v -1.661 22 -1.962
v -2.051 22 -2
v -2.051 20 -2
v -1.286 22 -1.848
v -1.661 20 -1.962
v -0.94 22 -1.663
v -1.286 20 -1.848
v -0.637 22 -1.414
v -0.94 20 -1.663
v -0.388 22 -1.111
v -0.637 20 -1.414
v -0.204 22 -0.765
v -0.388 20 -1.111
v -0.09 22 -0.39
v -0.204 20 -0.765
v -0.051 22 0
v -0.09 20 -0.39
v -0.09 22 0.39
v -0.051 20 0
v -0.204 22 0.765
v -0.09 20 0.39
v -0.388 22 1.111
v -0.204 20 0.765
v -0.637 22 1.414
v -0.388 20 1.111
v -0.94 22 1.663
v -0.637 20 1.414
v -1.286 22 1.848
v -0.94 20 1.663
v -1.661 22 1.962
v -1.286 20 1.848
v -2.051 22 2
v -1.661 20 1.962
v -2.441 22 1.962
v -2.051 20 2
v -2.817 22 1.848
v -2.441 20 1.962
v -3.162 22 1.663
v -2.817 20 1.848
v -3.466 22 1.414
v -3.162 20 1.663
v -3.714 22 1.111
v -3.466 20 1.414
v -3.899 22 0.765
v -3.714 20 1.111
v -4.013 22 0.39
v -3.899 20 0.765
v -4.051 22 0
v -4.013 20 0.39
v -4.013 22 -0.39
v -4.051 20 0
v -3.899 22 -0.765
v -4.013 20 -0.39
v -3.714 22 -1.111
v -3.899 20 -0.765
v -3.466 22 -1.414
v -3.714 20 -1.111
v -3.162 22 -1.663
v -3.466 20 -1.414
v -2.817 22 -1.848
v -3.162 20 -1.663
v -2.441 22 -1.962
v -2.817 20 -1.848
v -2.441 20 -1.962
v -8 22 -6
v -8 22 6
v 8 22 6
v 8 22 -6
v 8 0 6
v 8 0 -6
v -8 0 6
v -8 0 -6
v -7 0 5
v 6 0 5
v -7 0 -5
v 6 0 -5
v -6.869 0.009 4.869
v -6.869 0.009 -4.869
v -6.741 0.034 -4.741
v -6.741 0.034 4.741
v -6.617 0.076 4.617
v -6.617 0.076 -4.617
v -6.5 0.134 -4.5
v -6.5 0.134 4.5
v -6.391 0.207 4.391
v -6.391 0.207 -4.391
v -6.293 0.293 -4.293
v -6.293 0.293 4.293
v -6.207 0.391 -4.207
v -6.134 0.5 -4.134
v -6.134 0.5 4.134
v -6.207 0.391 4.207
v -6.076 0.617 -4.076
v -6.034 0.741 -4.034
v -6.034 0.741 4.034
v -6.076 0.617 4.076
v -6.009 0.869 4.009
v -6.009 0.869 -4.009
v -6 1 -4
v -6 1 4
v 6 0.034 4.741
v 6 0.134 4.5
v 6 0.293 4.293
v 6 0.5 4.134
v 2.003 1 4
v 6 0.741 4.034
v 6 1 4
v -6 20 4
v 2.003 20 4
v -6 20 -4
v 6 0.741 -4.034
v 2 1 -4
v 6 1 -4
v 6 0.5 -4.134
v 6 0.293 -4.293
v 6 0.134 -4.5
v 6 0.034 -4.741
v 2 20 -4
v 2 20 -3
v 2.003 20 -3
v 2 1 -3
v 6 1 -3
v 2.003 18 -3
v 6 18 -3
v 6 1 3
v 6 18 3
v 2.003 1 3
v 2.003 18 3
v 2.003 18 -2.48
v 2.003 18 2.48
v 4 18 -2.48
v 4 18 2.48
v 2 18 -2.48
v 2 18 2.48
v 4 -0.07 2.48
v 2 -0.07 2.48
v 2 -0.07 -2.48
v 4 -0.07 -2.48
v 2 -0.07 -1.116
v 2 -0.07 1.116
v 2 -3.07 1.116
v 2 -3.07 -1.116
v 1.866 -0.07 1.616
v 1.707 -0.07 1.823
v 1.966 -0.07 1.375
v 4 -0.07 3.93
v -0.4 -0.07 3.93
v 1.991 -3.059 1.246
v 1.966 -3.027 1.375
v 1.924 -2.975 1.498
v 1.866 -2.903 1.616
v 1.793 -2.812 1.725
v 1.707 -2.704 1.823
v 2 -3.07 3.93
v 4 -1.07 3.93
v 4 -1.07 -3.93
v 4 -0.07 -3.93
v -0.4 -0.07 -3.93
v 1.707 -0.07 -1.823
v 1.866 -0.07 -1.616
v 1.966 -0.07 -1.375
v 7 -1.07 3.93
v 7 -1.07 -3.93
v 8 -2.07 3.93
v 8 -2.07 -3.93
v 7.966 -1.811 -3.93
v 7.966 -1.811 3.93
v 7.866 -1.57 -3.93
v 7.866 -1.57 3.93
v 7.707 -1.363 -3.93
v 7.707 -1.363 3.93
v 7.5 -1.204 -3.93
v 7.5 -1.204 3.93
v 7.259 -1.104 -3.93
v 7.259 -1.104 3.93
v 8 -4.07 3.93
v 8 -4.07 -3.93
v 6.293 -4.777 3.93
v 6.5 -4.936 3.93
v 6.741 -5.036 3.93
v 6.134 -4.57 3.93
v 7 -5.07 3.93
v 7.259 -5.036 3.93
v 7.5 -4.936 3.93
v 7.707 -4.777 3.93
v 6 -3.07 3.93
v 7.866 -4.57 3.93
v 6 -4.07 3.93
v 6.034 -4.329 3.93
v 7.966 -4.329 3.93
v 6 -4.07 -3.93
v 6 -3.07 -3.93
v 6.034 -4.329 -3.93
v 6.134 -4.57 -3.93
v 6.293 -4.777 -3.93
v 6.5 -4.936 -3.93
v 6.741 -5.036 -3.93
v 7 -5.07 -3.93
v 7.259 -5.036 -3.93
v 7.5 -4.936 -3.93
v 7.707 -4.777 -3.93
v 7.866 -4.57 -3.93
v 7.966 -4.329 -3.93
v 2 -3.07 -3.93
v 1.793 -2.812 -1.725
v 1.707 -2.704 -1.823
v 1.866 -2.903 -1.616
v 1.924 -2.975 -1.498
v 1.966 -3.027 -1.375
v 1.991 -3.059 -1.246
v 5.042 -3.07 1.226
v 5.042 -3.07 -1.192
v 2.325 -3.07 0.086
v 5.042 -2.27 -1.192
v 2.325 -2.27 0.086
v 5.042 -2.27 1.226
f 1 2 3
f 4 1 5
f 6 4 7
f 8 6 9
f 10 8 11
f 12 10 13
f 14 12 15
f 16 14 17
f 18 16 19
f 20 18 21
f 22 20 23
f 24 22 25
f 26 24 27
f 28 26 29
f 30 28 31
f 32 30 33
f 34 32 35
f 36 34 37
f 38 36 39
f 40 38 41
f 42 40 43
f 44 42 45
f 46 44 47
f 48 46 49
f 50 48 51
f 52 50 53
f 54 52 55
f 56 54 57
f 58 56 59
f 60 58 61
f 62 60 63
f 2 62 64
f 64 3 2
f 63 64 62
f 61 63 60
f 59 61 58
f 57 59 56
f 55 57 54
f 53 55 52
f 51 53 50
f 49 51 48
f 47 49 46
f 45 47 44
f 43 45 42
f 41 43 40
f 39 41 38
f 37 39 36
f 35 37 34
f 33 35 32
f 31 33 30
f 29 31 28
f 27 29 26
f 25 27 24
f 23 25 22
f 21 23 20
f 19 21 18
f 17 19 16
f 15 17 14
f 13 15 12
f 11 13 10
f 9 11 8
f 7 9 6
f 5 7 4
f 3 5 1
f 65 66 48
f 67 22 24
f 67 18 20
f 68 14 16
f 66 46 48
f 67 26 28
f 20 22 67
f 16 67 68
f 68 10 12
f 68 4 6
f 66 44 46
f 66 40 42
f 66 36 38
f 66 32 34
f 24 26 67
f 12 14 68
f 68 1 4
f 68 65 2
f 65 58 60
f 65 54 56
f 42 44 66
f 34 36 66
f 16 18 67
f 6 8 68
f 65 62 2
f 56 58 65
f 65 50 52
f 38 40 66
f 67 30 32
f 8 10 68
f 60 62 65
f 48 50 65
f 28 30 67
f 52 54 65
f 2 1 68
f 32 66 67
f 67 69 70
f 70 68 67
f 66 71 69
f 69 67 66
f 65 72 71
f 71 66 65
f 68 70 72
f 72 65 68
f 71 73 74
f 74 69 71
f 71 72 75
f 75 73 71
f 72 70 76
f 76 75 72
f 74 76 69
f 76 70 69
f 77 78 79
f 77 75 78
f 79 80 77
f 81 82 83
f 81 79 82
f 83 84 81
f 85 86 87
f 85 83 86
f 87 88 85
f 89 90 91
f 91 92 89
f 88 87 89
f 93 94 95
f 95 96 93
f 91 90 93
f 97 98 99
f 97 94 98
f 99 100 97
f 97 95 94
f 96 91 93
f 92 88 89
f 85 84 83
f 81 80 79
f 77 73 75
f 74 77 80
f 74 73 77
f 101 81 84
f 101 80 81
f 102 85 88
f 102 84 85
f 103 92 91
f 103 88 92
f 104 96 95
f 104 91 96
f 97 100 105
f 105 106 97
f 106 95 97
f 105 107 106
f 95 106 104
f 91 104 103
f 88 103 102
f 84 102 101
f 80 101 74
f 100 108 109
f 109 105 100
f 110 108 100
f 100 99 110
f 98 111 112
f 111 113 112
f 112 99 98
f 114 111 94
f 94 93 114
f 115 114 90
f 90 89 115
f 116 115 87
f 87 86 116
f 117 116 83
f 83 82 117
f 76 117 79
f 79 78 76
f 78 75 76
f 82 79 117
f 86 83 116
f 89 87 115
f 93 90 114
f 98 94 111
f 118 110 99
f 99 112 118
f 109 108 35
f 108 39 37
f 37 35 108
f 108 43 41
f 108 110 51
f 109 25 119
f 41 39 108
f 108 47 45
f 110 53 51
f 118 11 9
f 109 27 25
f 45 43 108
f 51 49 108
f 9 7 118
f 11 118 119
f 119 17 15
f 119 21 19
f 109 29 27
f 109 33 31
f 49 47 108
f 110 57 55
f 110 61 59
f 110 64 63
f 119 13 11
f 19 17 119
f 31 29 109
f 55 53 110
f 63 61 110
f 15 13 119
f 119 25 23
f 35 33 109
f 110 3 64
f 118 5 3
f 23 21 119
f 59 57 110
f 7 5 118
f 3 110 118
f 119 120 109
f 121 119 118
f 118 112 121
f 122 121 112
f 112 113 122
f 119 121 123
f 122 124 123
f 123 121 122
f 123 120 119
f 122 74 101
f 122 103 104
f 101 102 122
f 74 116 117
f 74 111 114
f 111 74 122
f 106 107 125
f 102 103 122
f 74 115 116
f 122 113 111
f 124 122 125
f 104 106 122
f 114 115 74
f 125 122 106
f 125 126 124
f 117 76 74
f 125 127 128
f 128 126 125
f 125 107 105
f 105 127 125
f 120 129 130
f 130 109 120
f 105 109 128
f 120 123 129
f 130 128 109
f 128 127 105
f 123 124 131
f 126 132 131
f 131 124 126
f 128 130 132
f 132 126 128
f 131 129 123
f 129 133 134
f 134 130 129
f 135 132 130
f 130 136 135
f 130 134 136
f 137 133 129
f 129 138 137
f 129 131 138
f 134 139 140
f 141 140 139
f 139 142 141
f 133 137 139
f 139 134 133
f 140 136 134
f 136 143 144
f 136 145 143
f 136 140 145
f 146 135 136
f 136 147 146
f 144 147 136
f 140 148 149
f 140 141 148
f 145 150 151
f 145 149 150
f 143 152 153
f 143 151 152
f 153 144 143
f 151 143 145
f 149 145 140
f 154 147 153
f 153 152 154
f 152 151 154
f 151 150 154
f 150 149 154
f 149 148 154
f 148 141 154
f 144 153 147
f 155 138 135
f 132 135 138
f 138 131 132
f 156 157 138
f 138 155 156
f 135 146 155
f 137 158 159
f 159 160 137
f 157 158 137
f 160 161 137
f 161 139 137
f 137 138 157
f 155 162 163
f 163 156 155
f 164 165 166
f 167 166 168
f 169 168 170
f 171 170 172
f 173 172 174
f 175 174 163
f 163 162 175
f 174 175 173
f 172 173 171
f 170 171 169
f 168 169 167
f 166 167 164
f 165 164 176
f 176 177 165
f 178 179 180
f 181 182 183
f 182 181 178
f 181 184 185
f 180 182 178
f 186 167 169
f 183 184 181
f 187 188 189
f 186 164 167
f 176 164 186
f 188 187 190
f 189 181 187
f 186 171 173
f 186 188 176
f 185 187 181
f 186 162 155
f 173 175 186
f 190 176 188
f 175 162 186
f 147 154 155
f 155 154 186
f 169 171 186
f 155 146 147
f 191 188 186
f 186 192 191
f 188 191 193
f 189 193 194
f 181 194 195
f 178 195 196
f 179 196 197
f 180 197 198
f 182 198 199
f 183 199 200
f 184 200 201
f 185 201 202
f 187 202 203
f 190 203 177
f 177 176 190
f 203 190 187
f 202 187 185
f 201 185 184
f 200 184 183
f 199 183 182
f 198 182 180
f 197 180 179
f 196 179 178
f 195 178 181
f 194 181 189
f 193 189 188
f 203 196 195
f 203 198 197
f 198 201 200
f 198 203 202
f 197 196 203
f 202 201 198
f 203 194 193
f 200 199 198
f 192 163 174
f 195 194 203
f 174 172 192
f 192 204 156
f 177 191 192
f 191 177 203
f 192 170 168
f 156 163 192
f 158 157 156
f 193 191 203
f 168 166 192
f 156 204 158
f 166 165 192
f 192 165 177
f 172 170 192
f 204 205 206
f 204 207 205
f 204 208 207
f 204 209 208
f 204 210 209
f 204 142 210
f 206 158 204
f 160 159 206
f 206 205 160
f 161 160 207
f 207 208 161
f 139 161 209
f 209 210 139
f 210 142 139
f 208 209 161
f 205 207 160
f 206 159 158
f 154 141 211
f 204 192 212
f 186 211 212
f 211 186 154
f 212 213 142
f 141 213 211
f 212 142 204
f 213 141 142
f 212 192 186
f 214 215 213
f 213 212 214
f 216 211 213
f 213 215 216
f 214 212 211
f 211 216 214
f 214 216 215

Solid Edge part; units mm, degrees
sketch "Sketch1" plane through (0, 0, 0) normal (0, -1, 0) x (1, 0, 0)
  line L0 (8, 6) -> (-8, 6)
  line L1 (-8, 6) -> (-8, -6)
  line L2 (-8, -6) -> (8, -6)
  line L3 (8, -6) -> (8, 6)
extrude "Protrusion1" add sketch "Sketch1" against normal blind 22
sketch "Sketch2" plane through (0, 0, 0) normal (0, -1, 0) x (1, 0, 0)
  line L0 (6, 4) -> (-6, 4)
  line L1 (-6, 4) -> (-6, -4)
  line L2 (-6, -4) -> (6, -4)
  line L3 (6, -4) -> (6, 4)
extrude "Cutout1" cut sketch "Sketch2" against normal blind 20
sketch "Sketch3" plane through (0, 20, 0) normal (0, -1, 0) x (1, 0, 0)
  line L0 (6, -3) -> (2, -3)
  line L1 (2, -3) -> (2, -4)
  line L2 (2, -4) -> (6, -4)
  line L3 (6, -4) -> (6, -3)
  line L4 (6, 3) -> (2.0028, 3)
  line L5 (2.0028, 3) -> (2.0028, 4)
  line L6 (2.0028, 4) -> (6, 4)
  line L7 (6, 4) -> (6, 3)
extrude "LockSideProtrusion" add sketch "Sketch3" along normal blind 19
sketch "Sketch4" plane through (0, 20, 0) normal (0, -1, 0) x (1, 0, 0)
  line L0 (6, 3) -> (6, -3)
  line L1 (6, -3) -> (2.0028, -3)
  line L2 (2.0028, -3) -> (2.0028, 3)
  line L3 (2.0028, 3) -> (6, 3)
extrude "LockBaseProtrusion" add sketch "Sketch4" along normal blind 2
sketch "Sketch5" plane through (4.0014, 18, 0) normal (0, -1, 0) x (1, 0, 0)
  line L0 (-0.0014, 2.48) -> (-0.0014, -2.48)
  line L1 (-0.0014, -2.48) -> (-2.0014, -2.48)
  line L2 (-2.0014, -2.48) -> (-2.0014, 2.48)
  line L3 (-2.0014, 2.48) -> (-0.0014, 2.48)
extrude "LockProtrusion" add sketch "Sketch5" along normal blind 18.07
sketch "Sketch6" plane through (3, -0.07, 0) normal (0, -1, 0) x (1, 0, 0)
  line L0 (-1, -3.93) -> (-1, 3.93)
  line L1 (-1, 3.93) -> (1, 3.93)
  line L2 (1, 3.93) -> (1, -3.93)
  line L3 (1, -3.93) -> (-1, -3.93)
extrude "LockHeadMainProtrusion" add sketch "Sketch6" along normal blind 3
sketch "Sketch7" plane through (3, -0.07, 0) normal (0, -1, 0) x (1, 0, 0)
  line L0 (-3.4, 3.93) -> (-1, 1.53)
  line L1 (-1, 1.53) -> (-1, 3.93)
  line L2 (-1, 3.93) -> (-3.4, 3.93)
  line L3 (-3.4, -3.93) -> (-1, -1.53)
  line L4 (-1, -1.53) -> (-1, -3.93)
  line L5 (-1, -3.93) -> (-3.4, -3.93)
  dimension "D1" = 0.07
  dimension "D2" = 7.86
  dimension "D3" = 0.07
extrude "LockHeadTriangleProtrusion" add sketch "Sketch7" along normal blind 3
sketch "Sketch8" plane through (1.8, -1.57, -3.93) normal (0, 0, -1) x (1, 0, 0)
  line L0 (-2.2, 1.5) -> (0.2, 1.5)
  line L1 (0.2, 1.5) -> (-2.2, -1.5)
  line L2 (-2.2, -1.5) -> (-2.2, 1.5)
extrude "LockHeadTriangleCut" cut sketch "Sketch8" against normal blind 8.6519
sketch "Sketch9" plane through (4, 7.465, 0) normal (1, 0, 0) x (0, 0, 1)
  line L0 (-3.93, 10.535) -> (3.93, 10.535)
  line L1 (3.93, 10.535) -> (3.93, 8.535)
  line L2 (3.93, 8.535) -> (-3.93, 8.535)
  line L3 (-3.93, 8.535) -> (-3.93, 10.535)
extrude "FlapBaseProtrusion" add sketch "Sketch9" along normal blind 4
sketch "Sketch10" plane through (5, -3.07, 0) normal (0, -1, 0) x (1, 0, 0)
  line L0 (3, 3.93) -> (1, 3.93)
  line L1 (1, 3.93) -> (1, -3.93)
  line L2 (1, -3.93) -> (3, -3.93)
  line L3 (3, -3.93) -> (3, 3.93)
extrude "FlapHandleProtrusion" add sketch "Sketch10" along normal blind 2
fillet "SlotInnerRound" radius 1 3 edges at (0, 0, 4) (-6, 0, 0) (0, 0, -4)
fillet "FlapRound" radius 1 3 edges at (6, -5.07, 0) (8, -5.07, 0) (8, -1.07, 0)
sketch "Sketch11" plane through (4, -3.07, 0) normal (0, -1, 0) x (1, 0, 0)
  line L0 (-1.6753, 0.0864) -> (1.042, 1.2263)
  line L1 (1.042, 1.2263) -> (1.042, -1.1917)
  line L2 (1.042, -1.1917) -> (-1.6753, 0.0864)
extrude "MarkCut" cut sketch "Sketch11" against normal blind 0.8
hole "PushHole" at (-2.0513, 20, 0) direction (0, 1, 0) diameter 4 end through all
fillet "LockTriangleRound" radius 1 2 edges at (2, -1.57, 1.53) (2, -1.57, -1.53)
